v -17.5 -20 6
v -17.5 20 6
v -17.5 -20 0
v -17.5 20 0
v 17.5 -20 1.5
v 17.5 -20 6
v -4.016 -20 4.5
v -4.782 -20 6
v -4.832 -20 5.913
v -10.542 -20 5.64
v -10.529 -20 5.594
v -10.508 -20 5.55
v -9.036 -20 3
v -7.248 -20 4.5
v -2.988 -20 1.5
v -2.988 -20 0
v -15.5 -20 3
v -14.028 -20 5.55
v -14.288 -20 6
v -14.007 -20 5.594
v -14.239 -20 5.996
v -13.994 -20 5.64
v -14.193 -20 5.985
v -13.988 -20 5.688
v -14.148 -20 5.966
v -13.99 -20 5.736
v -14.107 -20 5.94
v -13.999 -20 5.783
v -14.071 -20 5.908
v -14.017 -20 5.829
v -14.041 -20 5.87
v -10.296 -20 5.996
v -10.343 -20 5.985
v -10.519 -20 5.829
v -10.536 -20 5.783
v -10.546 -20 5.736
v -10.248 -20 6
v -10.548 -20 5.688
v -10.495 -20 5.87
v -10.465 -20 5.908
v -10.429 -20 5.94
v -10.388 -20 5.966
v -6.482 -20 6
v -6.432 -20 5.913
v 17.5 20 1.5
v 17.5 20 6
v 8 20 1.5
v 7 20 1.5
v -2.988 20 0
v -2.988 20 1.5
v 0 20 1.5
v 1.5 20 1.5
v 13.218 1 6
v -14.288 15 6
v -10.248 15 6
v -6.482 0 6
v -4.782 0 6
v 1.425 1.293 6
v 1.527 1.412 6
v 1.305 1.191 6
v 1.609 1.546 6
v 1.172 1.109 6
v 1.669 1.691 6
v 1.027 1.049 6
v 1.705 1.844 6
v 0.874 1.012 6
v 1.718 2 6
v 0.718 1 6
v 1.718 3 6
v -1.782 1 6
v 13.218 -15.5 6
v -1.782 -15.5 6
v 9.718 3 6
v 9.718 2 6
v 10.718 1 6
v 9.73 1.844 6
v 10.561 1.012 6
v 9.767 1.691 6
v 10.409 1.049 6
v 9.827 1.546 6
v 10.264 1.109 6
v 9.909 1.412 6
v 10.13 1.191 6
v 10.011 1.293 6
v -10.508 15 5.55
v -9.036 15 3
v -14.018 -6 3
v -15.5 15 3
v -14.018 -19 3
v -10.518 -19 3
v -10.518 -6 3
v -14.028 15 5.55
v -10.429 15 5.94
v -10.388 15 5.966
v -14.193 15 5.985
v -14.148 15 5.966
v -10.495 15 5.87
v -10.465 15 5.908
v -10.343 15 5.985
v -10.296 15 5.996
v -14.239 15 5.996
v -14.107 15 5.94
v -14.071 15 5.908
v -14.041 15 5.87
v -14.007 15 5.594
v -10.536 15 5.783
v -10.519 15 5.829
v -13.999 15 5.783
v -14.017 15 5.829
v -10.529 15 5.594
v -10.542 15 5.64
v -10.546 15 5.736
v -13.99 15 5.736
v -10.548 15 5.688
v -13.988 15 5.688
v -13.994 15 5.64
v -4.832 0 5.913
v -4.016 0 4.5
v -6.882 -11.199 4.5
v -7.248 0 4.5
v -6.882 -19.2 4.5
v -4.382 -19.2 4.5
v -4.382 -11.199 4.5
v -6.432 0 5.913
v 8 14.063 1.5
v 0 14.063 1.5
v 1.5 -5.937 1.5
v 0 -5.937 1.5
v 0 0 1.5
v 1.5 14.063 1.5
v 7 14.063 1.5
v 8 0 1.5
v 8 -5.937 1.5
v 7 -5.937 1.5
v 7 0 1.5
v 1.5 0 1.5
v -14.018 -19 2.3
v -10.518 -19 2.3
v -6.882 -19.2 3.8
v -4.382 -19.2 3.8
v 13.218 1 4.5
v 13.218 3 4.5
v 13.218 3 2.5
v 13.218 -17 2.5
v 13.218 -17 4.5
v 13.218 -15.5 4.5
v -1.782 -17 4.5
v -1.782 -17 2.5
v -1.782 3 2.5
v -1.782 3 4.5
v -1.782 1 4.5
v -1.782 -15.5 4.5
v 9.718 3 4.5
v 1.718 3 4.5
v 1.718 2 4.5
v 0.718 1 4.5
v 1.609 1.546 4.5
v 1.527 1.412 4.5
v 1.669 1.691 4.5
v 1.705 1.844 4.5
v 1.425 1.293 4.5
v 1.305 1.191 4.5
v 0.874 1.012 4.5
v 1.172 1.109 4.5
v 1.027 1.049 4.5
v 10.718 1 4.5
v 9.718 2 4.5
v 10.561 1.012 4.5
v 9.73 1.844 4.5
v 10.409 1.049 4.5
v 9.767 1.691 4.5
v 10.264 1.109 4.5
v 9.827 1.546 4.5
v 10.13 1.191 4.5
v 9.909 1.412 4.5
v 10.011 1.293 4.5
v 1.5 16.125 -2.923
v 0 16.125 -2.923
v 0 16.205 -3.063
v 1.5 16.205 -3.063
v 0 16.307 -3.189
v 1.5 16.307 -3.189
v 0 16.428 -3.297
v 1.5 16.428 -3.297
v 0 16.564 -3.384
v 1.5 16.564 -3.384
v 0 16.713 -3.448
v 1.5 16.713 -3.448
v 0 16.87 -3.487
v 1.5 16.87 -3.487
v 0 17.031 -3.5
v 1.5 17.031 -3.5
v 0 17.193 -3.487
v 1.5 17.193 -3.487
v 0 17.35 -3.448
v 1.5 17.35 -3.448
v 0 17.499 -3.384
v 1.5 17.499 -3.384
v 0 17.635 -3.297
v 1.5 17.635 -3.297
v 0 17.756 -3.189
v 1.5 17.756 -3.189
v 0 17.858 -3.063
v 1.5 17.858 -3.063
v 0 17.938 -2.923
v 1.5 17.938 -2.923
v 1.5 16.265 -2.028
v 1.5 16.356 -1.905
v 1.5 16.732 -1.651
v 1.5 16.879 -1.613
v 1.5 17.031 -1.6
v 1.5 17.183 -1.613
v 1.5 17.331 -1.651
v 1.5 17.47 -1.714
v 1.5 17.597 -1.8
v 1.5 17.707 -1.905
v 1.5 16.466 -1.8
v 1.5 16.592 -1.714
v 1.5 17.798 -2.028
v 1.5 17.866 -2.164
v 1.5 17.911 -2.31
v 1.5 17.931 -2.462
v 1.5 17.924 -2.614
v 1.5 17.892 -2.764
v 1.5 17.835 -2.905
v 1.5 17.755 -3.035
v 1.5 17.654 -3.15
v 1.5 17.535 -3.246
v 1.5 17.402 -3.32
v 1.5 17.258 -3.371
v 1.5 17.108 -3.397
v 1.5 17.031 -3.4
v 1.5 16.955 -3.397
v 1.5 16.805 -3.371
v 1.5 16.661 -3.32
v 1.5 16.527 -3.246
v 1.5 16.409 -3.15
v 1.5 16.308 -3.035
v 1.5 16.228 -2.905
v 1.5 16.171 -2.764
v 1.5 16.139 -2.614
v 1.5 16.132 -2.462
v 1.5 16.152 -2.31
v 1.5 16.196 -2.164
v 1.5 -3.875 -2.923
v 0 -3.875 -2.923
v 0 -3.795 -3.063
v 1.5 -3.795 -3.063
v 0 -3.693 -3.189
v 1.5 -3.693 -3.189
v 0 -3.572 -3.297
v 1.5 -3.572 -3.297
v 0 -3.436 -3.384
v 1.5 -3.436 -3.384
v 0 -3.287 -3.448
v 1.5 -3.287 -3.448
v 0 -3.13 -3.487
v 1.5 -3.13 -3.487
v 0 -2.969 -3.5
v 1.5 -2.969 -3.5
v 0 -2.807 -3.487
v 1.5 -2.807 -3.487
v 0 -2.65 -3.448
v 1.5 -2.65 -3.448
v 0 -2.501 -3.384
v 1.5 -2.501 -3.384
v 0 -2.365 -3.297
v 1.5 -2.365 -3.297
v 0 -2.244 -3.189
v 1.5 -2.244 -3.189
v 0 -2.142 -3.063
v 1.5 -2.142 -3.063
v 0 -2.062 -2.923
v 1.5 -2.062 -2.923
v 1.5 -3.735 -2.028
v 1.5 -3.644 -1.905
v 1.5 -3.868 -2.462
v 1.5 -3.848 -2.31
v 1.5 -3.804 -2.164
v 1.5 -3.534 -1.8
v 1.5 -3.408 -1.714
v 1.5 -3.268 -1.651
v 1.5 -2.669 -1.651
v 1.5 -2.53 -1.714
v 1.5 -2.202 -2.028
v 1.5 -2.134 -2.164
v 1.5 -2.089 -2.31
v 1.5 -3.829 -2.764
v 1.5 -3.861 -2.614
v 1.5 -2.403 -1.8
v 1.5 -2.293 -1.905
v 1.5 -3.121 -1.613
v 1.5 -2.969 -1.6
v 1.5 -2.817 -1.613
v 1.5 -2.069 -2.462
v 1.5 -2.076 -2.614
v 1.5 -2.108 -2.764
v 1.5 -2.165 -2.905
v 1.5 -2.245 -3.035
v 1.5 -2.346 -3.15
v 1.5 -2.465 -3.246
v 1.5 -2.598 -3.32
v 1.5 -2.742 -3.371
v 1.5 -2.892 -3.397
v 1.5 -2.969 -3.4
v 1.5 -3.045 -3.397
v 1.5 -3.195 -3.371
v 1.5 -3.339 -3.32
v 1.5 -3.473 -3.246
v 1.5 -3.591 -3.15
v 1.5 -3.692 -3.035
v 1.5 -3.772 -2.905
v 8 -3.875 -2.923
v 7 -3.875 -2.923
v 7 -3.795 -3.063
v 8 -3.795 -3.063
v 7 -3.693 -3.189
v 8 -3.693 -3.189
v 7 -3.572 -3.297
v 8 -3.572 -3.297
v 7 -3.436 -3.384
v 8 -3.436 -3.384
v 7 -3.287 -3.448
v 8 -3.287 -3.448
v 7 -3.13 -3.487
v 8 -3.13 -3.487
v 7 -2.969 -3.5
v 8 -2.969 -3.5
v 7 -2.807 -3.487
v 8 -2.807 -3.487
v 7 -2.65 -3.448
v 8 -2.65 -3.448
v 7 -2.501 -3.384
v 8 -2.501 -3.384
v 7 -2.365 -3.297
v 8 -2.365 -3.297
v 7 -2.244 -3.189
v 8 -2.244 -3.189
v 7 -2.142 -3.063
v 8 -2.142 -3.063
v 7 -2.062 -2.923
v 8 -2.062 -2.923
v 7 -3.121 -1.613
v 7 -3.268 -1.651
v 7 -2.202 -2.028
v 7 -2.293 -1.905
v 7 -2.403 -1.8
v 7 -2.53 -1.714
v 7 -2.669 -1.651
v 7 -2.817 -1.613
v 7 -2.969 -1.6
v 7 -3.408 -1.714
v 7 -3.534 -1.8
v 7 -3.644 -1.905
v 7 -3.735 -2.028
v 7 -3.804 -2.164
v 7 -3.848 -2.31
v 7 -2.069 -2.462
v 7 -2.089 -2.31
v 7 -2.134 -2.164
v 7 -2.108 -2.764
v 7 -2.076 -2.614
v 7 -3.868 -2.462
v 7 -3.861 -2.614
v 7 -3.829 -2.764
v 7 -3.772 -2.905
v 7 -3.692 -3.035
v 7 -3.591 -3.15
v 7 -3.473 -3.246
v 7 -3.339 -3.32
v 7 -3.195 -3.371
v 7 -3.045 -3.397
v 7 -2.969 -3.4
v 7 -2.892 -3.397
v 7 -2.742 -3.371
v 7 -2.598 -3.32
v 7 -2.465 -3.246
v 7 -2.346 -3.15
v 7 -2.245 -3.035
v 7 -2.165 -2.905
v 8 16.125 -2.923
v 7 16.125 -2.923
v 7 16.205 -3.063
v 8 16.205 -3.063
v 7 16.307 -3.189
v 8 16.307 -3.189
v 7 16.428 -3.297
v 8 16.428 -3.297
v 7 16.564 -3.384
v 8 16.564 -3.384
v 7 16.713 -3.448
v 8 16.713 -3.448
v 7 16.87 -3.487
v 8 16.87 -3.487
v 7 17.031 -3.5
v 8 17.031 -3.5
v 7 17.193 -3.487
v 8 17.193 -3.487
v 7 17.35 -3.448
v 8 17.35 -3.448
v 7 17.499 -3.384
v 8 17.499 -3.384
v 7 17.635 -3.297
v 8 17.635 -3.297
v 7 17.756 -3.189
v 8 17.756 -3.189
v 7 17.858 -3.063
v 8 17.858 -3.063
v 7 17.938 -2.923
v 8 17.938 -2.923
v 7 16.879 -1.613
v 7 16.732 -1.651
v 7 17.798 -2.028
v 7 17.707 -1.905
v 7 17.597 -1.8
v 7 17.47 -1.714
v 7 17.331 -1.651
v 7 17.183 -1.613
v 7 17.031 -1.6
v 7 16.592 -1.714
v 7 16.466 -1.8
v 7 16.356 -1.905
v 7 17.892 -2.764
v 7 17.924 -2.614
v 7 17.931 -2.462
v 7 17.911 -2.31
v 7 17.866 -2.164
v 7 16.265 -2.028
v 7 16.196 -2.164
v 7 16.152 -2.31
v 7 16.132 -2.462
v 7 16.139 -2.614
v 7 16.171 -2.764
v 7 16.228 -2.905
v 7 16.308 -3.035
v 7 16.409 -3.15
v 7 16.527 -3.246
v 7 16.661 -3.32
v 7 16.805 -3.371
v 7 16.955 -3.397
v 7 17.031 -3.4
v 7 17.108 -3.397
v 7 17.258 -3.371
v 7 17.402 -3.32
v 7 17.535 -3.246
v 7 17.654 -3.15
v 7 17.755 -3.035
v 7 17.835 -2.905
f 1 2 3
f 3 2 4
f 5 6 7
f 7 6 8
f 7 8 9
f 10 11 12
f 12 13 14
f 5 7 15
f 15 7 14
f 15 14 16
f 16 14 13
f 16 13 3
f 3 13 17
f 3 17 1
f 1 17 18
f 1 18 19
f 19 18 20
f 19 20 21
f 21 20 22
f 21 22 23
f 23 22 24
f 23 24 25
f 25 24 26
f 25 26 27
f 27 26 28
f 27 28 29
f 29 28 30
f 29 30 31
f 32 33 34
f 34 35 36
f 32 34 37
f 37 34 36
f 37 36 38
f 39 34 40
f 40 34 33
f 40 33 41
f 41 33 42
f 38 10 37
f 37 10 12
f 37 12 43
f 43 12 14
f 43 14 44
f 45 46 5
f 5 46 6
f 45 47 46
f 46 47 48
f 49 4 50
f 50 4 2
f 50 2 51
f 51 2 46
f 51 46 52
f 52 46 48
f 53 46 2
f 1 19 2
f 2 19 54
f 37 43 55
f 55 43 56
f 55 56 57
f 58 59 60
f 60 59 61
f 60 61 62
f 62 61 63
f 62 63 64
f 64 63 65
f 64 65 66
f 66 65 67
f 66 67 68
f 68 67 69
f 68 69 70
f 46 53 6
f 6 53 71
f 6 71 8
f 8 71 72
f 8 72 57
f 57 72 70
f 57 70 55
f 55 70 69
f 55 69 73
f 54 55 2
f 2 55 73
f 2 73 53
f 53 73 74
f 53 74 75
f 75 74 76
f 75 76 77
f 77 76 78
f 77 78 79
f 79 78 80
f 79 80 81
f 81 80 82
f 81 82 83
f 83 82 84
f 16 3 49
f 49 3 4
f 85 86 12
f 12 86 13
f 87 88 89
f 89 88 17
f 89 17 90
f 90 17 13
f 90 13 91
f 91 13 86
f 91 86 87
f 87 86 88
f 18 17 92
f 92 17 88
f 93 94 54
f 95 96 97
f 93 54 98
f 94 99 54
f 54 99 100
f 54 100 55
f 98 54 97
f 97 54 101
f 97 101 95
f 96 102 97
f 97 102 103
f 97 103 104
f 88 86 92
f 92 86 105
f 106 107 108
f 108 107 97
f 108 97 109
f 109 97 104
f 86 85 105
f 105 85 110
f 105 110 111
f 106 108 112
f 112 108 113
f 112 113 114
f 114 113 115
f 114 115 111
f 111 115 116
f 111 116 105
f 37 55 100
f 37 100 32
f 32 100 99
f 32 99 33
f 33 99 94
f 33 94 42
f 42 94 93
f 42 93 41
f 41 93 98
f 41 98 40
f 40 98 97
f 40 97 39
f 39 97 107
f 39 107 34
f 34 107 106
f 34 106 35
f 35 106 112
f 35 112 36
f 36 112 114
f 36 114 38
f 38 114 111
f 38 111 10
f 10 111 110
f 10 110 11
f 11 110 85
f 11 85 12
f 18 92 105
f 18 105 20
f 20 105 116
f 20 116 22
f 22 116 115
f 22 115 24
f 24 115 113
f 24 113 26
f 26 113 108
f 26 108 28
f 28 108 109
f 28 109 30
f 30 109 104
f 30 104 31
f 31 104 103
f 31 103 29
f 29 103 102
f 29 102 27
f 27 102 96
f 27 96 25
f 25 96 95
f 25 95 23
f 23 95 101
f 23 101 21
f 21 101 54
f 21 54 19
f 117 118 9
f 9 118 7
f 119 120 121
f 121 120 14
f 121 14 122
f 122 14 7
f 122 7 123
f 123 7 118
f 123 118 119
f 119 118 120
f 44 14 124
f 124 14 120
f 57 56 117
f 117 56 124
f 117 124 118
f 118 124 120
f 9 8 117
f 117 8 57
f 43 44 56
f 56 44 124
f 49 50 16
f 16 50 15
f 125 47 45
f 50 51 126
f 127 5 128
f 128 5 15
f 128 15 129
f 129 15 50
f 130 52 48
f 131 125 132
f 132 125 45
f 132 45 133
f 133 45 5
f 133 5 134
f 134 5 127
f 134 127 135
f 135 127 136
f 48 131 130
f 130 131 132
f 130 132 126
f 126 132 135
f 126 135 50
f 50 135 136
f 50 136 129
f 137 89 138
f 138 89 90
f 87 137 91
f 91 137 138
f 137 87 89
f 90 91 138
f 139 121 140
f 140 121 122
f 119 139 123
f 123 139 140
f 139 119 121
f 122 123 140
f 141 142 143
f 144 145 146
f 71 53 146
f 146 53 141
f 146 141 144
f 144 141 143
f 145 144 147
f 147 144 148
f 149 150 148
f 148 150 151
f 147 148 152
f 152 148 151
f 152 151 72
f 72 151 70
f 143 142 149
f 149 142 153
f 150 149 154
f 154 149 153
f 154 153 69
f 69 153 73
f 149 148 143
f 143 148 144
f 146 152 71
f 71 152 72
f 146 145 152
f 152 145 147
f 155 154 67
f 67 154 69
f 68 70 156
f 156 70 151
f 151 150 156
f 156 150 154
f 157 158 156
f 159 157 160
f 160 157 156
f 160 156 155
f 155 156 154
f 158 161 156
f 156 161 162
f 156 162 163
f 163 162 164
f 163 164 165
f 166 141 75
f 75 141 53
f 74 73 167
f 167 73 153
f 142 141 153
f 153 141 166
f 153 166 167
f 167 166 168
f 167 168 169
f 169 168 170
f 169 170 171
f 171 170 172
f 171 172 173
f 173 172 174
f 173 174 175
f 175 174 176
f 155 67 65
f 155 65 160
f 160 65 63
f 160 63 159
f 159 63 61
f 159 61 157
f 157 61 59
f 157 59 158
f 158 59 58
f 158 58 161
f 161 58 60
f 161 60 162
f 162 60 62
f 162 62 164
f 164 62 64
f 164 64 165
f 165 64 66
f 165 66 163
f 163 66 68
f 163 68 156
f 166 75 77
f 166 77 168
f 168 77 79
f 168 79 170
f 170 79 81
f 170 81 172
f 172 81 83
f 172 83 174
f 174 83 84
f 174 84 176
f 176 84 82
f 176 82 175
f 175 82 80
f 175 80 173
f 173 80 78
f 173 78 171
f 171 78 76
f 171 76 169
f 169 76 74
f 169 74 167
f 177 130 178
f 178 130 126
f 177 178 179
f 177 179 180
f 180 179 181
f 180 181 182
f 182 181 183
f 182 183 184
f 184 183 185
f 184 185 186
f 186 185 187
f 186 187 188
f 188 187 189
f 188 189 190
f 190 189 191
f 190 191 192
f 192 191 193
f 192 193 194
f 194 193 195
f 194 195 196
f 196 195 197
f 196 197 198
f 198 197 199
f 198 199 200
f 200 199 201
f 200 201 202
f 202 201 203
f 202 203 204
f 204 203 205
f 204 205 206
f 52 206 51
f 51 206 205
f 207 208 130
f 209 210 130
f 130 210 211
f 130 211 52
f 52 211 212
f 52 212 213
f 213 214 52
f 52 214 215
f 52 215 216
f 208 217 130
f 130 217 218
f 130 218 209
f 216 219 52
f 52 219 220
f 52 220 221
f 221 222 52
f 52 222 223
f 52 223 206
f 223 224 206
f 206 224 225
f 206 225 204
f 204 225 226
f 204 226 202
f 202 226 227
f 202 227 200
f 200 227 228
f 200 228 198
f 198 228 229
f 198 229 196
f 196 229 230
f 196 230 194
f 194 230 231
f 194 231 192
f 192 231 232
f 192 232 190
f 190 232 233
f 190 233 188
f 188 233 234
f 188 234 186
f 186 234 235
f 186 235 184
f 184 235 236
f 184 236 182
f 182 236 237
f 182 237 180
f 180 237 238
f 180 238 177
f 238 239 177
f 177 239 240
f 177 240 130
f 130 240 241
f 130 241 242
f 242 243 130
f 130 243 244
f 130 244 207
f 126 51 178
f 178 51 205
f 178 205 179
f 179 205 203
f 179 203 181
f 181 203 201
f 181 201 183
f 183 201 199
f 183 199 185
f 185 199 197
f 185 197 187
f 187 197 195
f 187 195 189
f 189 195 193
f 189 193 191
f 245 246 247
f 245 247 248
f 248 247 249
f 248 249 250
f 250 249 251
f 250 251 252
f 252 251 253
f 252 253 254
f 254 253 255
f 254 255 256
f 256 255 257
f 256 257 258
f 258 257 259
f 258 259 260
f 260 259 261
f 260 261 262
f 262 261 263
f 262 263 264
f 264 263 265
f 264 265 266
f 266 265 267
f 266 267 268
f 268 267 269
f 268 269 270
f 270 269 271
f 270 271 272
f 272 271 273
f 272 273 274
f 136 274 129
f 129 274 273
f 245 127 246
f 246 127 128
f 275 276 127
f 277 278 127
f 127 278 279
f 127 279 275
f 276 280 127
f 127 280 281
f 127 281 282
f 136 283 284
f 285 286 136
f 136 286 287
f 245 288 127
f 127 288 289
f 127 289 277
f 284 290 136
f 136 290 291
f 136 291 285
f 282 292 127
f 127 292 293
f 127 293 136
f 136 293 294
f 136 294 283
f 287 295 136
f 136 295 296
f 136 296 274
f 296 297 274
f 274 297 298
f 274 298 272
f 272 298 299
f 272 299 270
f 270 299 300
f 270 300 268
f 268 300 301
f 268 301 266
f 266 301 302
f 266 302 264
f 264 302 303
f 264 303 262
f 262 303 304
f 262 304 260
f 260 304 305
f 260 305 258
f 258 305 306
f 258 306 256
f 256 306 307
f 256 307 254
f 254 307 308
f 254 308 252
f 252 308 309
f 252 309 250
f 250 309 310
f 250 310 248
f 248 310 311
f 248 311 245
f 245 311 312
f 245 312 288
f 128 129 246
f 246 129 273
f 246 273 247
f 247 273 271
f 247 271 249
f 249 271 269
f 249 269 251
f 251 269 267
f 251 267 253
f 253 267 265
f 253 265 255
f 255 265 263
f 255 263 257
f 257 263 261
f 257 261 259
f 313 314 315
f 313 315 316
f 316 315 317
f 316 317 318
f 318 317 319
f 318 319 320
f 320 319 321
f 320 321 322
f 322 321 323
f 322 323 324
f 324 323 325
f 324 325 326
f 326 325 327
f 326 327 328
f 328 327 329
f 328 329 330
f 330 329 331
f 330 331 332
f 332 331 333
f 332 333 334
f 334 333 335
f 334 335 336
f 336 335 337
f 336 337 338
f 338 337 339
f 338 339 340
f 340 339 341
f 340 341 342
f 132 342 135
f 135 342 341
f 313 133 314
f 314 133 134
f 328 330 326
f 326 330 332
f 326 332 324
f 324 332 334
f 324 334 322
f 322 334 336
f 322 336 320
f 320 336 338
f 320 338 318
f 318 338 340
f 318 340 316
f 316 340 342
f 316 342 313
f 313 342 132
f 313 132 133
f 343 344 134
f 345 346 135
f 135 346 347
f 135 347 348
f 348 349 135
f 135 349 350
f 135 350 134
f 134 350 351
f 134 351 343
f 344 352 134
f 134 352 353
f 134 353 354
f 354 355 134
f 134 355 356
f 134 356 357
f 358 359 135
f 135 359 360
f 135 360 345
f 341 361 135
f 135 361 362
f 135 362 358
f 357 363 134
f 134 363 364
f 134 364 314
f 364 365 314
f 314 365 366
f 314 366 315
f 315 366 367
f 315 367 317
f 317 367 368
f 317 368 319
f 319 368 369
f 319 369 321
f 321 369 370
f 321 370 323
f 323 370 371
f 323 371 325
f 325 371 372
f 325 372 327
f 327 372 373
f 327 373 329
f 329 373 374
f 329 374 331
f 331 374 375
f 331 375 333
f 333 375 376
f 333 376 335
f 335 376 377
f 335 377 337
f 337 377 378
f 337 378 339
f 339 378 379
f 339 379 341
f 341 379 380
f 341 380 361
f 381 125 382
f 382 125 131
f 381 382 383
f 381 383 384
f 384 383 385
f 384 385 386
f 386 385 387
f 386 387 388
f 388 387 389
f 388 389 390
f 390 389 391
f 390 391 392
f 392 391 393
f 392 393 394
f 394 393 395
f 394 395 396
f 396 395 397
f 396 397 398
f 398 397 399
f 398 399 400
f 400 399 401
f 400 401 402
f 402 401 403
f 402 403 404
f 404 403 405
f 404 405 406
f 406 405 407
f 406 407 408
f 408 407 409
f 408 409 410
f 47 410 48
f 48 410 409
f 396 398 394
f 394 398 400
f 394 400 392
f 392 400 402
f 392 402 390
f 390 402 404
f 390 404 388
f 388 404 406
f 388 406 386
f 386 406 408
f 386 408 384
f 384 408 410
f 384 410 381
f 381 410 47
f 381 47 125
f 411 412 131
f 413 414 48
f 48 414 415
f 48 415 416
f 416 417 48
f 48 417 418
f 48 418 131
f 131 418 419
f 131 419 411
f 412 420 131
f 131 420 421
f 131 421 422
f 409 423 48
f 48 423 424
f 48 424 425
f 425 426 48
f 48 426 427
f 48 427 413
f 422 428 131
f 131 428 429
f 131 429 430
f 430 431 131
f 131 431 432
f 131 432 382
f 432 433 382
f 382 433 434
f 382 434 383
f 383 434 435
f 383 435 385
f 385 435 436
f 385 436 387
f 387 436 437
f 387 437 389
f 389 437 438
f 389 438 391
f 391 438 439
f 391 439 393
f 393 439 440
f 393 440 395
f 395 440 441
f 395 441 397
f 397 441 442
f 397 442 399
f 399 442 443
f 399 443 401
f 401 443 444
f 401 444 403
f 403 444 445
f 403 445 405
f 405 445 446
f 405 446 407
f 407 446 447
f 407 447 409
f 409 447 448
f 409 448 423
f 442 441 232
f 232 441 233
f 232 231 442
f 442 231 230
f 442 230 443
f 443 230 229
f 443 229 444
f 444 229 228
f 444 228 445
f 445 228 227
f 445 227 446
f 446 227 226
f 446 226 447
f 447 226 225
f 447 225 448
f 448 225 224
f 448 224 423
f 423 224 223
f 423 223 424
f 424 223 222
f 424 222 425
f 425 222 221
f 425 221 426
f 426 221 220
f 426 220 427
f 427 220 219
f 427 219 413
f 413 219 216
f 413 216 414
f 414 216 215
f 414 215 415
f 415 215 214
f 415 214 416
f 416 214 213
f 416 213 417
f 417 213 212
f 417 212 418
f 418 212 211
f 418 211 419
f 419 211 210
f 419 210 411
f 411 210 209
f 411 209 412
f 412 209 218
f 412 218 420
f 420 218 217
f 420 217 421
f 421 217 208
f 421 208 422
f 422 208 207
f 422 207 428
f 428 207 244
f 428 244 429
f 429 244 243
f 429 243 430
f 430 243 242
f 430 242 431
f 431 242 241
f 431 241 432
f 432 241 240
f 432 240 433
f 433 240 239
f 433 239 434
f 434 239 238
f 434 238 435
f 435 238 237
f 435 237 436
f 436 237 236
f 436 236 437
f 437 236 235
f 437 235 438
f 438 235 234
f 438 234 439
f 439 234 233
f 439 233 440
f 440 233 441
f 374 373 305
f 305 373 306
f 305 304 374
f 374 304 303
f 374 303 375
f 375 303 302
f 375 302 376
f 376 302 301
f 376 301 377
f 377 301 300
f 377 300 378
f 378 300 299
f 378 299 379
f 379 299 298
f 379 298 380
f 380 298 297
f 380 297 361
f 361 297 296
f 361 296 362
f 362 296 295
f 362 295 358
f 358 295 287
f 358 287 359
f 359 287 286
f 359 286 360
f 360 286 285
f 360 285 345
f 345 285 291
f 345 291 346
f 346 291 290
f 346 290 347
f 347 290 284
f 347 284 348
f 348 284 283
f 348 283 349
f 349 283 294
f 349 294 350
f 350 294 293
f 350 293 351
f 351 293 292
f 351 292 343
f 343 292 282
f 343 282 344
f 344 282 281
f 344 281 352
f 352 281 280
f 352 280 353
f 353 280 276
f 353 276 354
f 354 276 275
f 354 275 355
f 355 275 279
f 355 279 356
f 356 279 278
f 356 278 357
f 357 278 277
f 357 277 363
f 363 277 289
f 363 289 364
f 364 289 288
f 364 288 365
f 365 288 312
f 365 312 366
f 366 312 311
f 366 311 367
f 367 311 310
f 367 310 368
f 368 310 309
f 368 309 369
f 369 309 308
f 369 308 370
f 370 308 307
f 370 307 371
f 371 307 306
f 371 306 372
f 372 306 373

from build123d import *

# Parameters (mm, degrees)
SKETCH1_W           = 35
SKETCH1_H           = 40
BOSS_EXTRUDE1_DEPTH = 6
CUT_EXTRUDE1_DEPTH  = 35
FILLET4_R           = 0.3
CUT_EXTRUDE4_DEPTH  = 20
CHAMFER1_SIZE       = 0.1
SKETCH10_W          = 20.487766081
SKETCH10_H          = 1.5
CUT_EXTRUDE8_DEPTH  = 45.070965499
CUT_EXTRUDE9_DEPTH  = 1.75
CUT_EXTRUDE10_DEPTH = 1.25
SKETCH13_W          = 15
SKETCH13_H          = 20
CUT_EXTRUDE11_DEPTH = 3.5
SKETCH14_W          = 15
SKETCH14_H          = 1.5
SKETCH14_W_2        = 3.5
SKETCH14_H_2        = 2
BOSS_EXTRUDE2_DEPTH = 1.5
FILLET5_R           = 1
SKETCH15_R          = 0.9
BOSS_EXTRUDE3_DEPTH = 1.5
BOSS_EXTRUDE4_START = 7
SKETCH15_3_R        = 0.9
BOSS_EXTRUDE4_DEPTH = 1
SKETCH15_4_R        = 0.9
BOSS_EXTRUDE5_DEPTH = 8


with BuildPart() as part:
    # Sketch1 → Boss-Extrude1 (new body)
    with BuildSketch(Plane.XY):
        Rectangle(SKETCH1_W, SKETCH1_H)
    extrude(amount=BOSS_EXTRUDE1_DEPTH)

    # Sketch2 → Cut-Extrude1 (cut)
    with BuildSketch(Plane.XZ.offset(20)):
        Polygon((-10.767949192, 6), (-9.035898385, 3), (-15.5, 3), (-13.767949192, 6), align=None)
    extrude(amount=-CUT_EXTRUDE1_DEPTH, mode=Mode.SUBTRACT)

    # Fillet4
    fillet4_edges = [part.edges().sort_by_distance(p)[0] for p in [
        (-13.767949192, -2.5, 6),
        (-10.767949192, -2.5, 6),
    ]]
    fillet(fillet4_edges, radius=FILLET4_R)

    # Sketch5 → Cut-Extrude4 (cut)
    with BuildSketch(Plane.XZ.offset(20)):
        Polygon((-4.882308546, 6), (-4.016283143, 4.5), (-7.24833395, 4.5), (-6.382308546, 6), align=None)
    extrude(amount=-CUT_EXTRUDE4_DEPTH, mode=Mode.SUBTRACT)

    # Chamfer1
    chamfer1_edges = [part.edges().sort_by_distance(p)[0] for p in [
        (-6.382308546, -10, 6),
        (-4.882308546, -10, 6),
    ]]
    chamfer(chamfer1_edges, length=CHAMFER1_SIZE)

    # Sketch10 → Cut-Extrude8 (cut, through all)
    with BuildSketch(Plane.XZ.offset(20)):
        with Locations((7.256116959, 0.75)):
            Rectangle(SKETCH10_W, SKETCH10_H)
    extrude(amount=-CUT_EXTRUDE8_DEPTH, mode=Mode.SUBTRACT)

    # Sketch11 → Cut-Extrude9 (cut, symmetric)
    with BuildSketch(Plane(origin=(-12.267949192, 0, 0), x_dir=(0, 0, -1), z_dir=(1, 0, 0))):
        Polygon((-3, -19), (-3, -6), (-2.3, -19), align=None)
    extrude(amount=CUT_EXTRUDE9_DEPTH, both=True, mode=Mode.SUBTRACT)

    # Sketch12 → Cut-Extrude10 (cut, symmetric)
    with BuildSketch(Plane(origin=(-5.632308546, 0, 0), x_dir=(0, 0, -1), z_dir=(1, 0, 0))):
        Polygon((-4.5, -19.2), (-4.5, -11.198963388), (-3.8, -19.2), align=None)
    extrude(amount=CUT_EXTRUDE10_DEPTH, both=True, mode=Mode.SUBTRACT)

    # Sketch13 → Cut-Extrude11 (cut)
    with BuildSketch(Plane.XY.offset(6)):
        with Locations((5.717691454, -7)):
            Rectangle(SKETCH13_W, SKETCH13_H)
    extrude(amount=-CUT_EXTRUDE11_DEPTH, mode=Mode.SUBTRACT)

    # Sketch14 → Boss-Extrude2 (add)
    with BuildSketch(Plane.XY.offset(6)):
        with Locations((5.717691454, -16.25)):
            Rectangle(SKETCH14_W, SKETCH14_H)
        with Locations((-0.032308546, 2)):
            Rectangle(SKETCH14_W_2, SKETCH14_H_2)
        with Locations((11.467691454, 2)):
            Rectangle(SKETCH14_W_2, SKETCH14_H_2)
    extrude(amount=-BOSS_EXTRUDE2_DEPTH)

    # Fillet5
    fillet5_edges = [part.edges().sort_by_distance(p)[0] for p in [
        (1.717691454, 1, 5.25),
        (9.717691454, 1, 5.25),
    ]]
    fillet(fillet5_edges, radius=FILLET5_R)

    # Sketch15 → Boss-Extrude3 (add)
    # profile 1 of 2: a face of its own
    with BuildSketch(Plane(origin=(0, 0, 0), x_dir=(0, 0, -1), z_dir=(1, 0, 0))):
        with BuildLine():
            Line((2.922618262, 16.125083661), (-1.5, 14.062782897))
            Line((-1.5, 14.062782897), (-1.5, 20))
            Line((-1.5, 20), (2.922618262, 17.937699235))
            ThreePointArc((2.922618262, 17.937699235), (3.5, 17.031391448), (2.922618262, 16.125083661))
        make_face()
        with Locations((2.5, 17.031391448)):
            Circle(SKETCH15_R, mode=Mode.SUBTRACT)
    # profile 2 of 2: a face of its own
    with BuildSketch(Plane(origin=(0, 0, 0), x_dir=(0, 0, -1), z_dir=(1, 0, 0))):
        with BuildLine():
            ThreePointArc((2.922618262, -2.062300765), (3.5, -2.968608552), (2.922618262, -3.874916339))
            Line((2.922618262, -3.874916339), (-1.5, -5.937217103))
            Line((-1.5, -5.937217103), (-1.5, 0))
            Line((-1.5, 0), (2.922618262, -2.062300765))
        make_face()
        with Locations((2.5, -2.968608552)):
            Circle(SKETCH15_R, mode=Mode.SUBTRACT)
    extrude(amount=BOSS_EXTRUDE3_DEPTH)

    # Sketch15<3> → Boss-Extrude4 (add)
    # profile 1 of 2: a face of its own
    with BuildSketch(Plane(origin=(0, 0, 0), x_dir=(0, 0, -1), z_dir=(1, 0, 0)).offset(BOSS_EXTRUDE4_START)):
        with BuildLine():
            ThreePointArc((2.922618262, -2.062300765), (3.5, -2.968608552), (2.922618262, -3.874916339))
            Line((2.922618262, -3.874916339), (-1.5, -5.937217103))
            Line((-1.5, -5.937217103), (-1.5, 0))
            Line((-1.5, 0), (2.922618262, -2.062300765))
        make_face()
        with Locations((2.5, -2.968608552)):
            Circle(SKETCH15_3_R, mode=Mode.SUBTRACT)
    # profile 2 of 2: a face of its own
    with BuildSketch(Plane(origin=(0, 0, 0), x_dir=(0, 0, -1), z_dir=(1, 0, 0)).offset(BOSS_EXTRUDE4_START)):
        with BuildLine():
            Line((2.922618262, 16.125083661), (-1.5, 14.062782897))
            Line((-1.5, 14.062782897), (-1.5, 20))
            Line((-1.5, 20), (2.922618262, 17.937699235))
            ThreePointArc((2.922618262, 17.937699235), (3.5, 17.031391448), (2.922618262, 16.125083661))
        make_face()
        with Locations((2.5, 17.031391448)):
            Circle(SKETCH15_3_R, mode=Mode.SUBTRACT)
    extrude(amount=BOSS_EXTRUDE4_DEPTH)

    # Sketch15<4> → Boss-Extrude5 (add)
    with BuildSketch(Plane(origin=(0, 0, 0), x_dir=(0, 0, -1), z_dir=(1, 0, 0))):
        with Locations((2.5, 17.031391448)):
            Circle(SKETCH15_4_R)
        with Locations((2.5, -2.968608552)):
            Circle(SKETCH15_4_R)
    extrude(amount=BOSS_EXTRUDE5_DEPTH)


solid = part.part
